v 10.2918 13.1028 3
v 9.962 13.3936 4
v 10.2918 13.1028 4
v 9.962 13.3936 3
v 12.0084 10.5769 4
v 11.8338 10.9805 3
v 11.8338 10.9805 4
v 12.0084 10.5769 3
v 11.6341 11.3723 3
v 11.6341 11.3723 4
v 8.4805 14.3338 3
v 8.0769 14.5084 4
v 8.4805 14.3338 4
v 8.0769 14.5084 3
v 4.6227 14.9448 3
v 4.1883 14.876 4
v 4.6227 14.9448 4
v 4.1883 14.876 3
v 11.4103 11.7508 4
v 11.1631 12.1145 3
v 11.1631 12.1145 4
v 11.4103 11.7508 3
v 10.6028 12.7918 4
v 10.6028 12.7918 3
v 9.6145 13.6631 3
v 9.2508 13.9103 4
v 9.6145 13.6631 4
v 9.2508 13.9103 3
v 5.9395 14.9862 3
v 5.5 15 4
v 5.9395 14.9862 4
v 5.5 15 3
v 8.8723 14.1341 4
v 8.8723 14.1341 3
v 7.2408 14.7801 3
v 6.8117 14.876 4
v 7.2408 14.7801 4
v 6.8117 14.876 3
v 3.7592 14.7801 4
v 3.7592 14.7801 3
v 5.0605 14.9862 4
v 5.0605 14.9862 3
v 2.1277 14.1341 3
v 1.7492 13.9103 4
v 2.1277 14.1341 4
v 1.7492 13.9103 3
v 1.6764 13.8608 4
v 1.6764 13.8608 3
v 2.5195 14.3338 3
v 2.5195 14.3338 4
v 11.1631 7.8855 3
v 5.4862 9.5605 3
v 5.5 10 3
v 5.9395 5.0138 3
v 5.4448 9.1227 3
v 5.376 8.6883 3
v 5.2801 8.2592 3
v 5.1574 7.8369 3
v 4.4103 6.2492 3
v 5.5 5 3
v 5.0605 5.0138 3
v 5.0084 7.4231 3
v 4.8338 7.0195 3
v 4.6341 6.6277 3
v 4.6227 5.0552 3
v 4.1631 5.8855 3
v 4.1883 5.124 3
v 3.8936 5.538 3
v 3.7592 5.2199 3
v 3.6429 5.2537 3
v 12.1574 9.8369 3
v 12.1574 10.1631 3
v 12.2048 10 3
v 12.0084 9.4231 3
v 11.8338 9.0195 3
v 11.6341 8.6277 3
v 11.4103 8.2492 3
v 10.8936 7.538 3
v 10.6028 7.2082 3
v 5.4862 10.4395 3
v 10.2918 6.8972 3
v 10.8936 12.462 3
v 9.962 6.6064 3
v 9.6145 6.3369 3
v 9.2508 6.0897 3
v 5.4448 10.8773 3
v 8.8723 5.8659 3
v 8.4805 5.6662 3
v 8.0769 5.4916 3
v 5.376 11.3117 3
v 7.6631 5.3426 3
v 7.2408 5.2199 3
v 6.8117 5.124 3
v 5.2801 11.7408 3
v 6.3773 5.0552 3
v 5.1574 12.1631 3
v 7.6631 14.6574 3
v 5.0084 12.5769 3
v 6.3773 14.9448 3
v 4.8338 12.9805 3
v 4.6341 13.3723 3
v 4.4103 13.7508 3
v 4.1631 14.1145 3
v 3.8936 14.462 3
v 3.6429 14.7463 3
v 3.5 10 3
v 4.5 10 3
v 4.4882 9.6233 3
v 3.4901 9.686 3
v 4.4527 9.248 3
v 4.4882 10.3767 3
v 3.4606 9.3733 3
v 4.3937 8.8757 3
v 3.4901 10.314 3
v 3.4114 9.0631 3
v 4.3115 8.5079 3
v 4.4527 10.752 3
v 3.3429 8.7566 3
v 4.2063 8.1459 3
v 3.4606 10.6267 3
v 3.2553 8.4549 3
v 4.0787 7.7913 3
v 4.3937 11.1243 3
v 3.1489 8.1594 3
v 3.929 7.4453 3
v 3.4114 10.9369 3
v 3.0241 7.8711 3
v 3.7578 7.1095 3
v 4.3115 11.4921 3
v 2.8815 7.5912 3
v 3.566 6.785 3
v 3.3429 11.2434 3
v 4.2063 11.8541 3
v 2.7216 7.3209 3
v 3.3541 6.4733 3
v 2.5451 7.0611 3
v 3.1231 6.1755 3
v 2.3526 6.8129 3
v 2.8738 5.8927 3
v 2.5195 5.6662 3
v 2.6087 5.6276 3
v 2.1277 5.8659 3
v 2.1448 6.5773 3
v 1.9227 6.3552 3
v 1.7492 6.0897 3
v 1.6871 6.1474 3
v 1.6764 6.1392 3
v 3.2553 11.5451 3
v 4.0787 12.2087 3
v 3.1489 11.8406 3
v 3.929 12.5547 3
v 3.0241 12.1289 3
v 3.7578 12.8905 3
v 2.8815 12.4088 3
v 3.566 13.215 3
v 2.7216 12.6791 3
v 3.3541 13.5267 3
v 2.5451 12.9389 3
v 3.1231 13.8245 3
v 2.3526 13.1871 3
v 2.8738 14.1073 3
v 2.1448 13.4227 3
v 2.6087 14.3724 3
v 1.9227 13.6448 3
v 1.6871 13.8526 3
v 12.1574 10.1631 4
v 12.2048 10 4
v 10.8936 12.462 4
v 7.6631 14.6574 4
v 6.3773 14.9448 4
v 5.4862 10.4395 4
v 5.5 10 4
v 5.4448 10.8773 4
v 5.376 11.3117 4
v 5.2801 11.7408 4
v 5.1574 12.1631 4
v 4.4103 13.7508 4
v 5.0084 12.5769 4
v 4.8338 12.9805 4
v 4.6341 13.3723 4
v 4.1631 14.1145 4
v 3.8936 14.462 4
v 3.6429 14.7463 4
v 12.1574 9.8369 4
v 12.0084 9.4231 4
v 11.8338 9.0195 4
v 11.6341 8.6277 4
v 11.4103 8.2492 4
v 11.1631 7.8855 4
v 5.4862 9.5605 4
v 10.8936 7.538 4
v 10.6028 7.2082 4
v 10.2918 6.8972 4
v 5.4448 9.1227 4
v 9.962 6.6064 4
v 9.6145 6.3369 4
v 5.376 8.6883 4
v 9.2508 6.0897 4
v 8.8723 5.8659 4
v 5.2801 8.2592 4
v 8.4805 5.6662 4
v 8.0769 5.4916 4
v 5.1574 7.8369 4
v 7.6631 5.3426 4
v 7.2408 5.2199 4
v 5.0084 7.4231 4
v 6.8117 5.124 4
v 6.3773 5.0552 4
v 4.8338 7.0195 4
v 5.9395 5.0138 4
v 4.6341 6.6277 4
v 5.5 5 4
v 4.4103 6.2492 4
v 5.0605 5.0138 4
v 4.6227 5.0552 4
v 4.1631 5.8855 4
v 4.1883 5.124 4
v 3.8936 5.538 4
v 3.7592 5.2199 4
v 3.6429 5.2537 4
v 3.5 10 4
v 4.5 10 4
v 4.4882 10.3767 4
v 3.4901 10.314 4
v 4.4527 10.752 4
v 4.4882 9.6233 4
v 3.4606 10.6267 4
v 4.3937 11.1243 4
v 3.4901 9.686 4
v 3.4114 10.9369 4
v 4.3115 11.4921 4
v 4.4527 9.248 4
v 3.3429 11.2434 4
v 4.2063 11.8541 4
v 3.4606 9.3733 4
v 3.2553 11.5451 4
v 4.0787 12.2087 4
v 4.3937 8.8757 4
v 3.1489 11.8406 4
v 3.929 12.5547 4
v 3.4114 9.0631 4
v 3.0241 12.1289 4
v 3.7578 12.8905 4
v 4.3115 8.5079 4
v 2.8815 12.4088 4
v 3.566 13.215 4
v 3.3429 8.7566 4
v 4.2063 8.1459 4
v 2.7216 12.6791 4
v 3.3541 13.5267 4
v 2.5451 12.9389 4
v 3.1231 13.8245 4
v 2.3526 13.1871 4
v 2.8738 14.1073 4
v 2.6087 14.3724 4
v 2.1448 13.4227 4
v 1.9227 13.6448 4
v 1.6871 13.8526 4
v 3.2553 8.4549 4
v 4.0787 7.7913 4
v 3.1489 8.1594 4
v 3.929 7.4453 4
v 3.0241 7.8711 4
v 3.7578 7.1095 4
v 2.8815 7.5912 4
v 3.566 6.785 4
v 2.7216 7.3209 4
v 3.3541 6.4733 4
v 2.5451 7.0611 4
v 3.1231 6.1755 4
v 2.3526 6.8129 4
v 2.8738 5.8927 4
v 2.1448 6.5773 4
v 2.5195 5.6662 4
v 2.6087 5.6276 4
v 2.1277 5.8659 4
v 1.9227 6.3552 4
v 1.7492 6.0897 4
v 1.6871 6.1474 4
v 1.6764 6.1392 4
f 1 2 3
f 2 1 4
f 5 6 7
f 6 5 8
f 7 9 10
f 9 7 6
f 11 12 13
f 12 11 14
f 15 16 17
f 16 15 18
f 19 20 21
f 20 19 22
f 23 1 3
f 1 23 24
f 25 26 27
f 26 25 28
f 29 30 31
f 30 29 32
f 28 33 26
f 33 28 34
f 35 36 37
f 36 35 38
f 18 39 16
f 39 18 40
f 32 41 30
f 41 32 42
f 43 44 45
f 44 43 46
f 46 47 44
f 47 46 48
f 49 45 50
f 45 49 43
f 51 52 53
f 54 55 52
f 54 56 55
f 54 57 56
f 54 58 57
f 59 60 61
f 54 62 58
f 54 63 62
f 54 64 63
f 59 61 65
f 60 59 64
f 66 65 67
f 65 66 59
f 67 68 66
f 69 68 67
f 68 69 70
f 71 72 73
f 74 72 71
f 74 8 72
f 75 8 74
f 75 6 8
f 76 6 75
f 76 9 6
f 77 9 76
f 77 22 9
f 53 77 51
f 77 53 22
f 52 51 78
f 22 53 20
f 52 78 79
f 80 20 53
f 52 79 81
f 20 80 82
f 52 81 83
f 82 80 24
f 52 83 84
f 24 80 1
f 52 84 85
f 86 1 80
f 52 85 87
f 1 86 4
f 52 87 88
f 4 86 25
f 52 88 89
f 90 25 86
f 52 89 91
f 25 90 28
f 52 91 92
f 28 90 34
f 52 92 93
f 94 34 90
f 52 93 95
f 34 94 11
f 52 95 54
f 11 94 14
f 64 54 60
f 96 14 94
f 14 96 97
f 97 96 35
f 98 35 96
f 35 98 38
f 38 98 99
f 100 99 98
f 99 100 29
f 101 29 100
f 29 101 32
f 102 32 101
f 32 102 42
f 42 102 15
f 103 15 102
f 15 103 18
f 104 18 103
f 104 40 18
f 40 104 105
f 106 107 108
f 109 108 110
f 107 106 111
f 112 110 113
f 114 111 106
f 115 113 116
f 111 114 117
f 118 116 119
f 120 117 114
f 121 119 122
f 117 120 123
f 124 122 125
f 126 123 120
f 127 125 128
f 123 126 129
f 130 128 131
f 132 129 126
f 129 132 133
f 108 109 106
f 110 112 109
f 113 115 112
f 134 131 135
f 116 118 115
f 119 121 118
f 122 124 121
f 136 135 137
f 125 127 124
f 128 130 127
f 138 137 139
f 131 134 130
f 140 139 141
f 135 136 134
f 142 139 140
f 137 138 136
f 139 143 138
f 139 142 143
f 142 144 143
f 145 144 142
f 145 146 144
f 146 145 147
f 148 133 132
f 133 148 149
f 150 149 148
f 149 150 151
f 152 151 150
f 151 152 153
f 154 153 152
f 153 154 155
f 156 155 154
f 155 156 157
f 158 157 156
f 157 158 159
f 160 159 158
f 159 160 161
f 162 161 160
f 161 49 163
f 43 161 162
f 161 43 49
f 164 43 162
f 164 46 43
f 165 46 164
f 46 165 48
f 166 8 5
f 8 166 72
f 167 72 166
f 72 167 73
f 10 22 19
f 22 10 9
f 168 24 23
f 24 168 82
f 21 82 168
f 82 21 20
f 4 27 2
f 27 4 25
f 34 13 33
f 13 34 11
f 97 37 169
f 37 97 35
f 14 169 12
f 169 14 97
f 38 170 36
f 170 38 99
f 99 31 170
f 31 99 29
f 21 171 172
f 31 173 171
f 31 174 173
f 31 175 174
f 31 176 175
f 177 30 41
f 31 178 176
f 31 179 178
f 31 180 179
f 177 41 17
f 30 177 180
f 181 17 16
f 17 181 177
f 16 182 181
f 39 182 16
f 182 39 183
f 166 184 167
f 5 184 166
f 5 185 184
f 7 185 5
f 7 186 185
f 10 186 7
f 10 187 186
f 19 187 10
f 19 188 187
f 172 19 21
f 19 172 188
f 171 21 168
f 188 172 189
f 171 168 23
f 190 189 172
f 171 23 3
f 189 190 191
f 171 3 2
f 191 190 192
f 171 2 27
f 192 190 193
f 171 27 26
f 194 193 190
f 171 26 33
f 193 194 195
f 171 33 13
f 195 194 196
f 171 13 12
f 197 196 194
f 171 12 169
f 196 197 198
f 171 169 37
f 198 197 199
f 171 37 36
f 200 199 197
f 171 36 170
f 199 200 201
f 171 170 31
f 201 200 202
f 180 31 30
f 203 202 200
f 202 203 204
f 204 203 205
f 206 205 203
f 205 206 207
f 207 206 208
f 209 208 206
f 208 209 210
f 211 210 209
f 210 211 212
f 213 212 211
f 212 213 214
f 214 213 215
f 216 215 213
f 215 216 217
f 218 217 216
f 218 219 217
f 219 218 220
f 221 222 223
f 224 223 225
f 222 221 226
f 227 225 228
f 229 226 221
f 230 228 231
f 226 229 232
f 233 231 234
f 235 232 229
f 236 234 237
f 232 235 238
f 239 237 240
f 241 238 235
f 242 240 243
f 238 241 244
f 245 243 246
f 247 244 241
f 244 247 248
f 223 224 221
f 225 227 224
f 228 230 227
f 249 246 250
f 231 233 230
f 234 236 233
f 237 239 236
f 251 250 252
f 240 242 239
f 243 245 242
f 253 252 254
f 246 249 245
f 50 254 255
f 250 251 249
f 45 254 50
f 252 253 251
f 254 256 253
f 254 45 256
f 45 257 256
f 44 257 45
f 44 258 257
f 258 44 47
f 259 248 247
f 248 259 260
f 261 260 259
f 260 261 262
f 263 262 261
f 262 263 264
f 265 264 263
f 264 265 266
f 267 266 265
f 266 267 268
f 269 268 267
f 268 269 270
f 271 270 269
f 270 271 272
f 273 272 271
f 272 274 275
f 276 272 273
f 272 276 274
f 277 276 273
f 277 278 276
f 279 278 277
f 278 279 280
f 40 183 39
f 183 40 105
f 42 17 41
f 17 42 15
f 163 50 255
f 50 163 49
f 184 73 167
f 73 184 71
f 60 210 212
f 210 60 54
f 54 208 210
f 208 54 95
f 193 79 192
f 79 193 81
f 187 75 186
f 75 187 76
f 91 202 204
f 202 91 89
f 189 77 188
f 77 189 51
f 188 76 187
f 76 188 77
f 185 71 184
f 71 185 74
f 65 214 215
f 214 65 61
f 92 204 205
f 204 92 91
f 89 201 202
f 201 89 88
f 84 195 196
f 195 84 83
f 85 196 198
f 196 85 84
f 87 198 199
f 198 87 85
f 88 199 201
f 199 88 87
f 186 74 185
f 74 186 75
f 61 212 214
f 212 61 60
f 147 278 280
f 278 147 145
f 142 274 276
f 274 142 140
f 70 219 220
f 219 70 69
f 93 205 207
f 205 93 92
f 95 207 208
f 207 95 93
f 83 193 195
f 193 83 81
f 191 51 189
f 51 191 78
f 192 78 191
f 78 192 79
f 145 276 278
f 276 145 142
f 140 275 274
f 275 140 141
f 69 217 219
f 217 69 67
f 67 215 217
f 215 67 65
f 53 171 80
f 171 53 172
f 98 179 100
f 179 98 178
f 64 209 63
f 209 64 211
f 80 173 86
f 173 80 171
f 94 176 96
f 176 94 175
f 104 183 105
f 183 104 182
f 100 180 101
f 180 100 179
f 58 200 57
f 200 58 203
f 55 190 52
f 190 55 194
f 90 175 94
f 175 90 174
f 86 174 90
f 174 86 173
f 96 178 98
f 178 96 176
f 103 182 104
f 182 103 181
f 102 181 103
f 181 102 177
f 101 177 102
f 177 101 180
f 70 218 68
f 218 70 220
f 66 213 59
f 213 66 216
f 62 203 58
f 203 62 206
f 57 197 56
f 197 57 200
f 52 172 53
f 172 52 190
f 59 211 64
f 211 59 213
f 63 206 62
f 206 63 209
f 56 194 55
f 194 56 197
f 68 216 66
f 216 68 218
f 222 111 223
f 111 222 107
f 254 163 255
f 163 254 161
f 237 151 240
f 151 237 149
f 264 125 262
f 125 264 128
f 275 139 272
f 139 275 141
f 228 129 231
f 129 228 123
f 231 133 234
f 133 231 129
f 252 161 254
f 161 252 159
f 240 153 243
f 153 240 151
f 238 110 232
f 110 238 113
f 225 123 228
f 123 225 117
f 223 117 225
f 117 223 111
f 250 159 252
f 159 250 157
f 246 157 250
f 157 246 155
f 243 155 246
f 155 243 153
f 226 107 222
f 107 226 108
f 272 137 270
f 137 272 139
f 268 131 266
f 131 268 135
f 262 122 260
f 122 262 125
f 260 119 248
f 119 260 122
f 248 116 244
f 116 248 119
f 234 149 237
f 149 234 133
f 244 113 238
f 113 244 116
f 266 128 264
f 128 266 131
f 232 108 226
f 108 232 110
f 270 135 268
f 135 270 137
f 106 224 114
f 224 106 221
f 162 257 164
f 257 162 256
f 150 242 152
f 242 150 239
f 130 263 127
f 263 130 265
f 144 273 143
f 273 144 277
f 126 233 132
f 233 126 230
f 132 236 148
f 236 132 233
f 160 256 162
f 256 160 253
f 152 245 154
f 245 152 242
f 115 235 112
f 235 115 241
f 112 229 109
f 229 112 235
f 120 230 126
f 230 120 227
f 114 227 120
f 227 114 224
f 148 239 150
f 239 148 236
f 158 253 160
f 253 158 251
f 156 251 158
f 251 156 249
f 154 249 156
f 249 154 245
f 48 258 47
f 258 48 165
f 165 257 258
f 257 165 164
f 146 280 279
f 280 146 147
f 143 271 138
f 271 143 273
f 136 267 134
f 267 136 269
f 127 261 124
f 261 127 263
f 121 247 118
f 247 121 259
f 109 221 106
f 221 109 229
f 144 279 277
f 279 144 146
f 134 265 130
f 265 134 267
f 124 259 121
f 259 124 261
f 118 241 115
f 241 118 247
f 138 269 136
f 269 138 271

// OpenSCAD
$fn = 100;
s = 0.0001;

module base(){
    minkowski(){
        translate([1,1,0]) cube([18, 18, 2]);
        cylinder(1,1,1);
    }
}

module thore(thore_radius, tube_diameter, angle){
    rotate_extrude(angle=angle) {
        translate([thore_radius - tube_diameter/2, 0])circle(d=tube_diameter);
    }
}
//translate([0,0,-10]) color("red")
//base();

translate([5.5,10,3])
union(){
    difference(){
        intersection(){
            translate([0,-2,0]) cylinder(1, 7, 7);
            translate([0,2,0]) cylinder(1, 7, 7);
        }
        difference(){
            difference(){
                translate([-7,0,-1]) cylinder(3, 7, 7);
                translate([-7,0,-1]) cylinder(3, 6, 6);
            }
        }
        translate([-7,0,-1]) cylinder(3, 5, 5);
    }
}
